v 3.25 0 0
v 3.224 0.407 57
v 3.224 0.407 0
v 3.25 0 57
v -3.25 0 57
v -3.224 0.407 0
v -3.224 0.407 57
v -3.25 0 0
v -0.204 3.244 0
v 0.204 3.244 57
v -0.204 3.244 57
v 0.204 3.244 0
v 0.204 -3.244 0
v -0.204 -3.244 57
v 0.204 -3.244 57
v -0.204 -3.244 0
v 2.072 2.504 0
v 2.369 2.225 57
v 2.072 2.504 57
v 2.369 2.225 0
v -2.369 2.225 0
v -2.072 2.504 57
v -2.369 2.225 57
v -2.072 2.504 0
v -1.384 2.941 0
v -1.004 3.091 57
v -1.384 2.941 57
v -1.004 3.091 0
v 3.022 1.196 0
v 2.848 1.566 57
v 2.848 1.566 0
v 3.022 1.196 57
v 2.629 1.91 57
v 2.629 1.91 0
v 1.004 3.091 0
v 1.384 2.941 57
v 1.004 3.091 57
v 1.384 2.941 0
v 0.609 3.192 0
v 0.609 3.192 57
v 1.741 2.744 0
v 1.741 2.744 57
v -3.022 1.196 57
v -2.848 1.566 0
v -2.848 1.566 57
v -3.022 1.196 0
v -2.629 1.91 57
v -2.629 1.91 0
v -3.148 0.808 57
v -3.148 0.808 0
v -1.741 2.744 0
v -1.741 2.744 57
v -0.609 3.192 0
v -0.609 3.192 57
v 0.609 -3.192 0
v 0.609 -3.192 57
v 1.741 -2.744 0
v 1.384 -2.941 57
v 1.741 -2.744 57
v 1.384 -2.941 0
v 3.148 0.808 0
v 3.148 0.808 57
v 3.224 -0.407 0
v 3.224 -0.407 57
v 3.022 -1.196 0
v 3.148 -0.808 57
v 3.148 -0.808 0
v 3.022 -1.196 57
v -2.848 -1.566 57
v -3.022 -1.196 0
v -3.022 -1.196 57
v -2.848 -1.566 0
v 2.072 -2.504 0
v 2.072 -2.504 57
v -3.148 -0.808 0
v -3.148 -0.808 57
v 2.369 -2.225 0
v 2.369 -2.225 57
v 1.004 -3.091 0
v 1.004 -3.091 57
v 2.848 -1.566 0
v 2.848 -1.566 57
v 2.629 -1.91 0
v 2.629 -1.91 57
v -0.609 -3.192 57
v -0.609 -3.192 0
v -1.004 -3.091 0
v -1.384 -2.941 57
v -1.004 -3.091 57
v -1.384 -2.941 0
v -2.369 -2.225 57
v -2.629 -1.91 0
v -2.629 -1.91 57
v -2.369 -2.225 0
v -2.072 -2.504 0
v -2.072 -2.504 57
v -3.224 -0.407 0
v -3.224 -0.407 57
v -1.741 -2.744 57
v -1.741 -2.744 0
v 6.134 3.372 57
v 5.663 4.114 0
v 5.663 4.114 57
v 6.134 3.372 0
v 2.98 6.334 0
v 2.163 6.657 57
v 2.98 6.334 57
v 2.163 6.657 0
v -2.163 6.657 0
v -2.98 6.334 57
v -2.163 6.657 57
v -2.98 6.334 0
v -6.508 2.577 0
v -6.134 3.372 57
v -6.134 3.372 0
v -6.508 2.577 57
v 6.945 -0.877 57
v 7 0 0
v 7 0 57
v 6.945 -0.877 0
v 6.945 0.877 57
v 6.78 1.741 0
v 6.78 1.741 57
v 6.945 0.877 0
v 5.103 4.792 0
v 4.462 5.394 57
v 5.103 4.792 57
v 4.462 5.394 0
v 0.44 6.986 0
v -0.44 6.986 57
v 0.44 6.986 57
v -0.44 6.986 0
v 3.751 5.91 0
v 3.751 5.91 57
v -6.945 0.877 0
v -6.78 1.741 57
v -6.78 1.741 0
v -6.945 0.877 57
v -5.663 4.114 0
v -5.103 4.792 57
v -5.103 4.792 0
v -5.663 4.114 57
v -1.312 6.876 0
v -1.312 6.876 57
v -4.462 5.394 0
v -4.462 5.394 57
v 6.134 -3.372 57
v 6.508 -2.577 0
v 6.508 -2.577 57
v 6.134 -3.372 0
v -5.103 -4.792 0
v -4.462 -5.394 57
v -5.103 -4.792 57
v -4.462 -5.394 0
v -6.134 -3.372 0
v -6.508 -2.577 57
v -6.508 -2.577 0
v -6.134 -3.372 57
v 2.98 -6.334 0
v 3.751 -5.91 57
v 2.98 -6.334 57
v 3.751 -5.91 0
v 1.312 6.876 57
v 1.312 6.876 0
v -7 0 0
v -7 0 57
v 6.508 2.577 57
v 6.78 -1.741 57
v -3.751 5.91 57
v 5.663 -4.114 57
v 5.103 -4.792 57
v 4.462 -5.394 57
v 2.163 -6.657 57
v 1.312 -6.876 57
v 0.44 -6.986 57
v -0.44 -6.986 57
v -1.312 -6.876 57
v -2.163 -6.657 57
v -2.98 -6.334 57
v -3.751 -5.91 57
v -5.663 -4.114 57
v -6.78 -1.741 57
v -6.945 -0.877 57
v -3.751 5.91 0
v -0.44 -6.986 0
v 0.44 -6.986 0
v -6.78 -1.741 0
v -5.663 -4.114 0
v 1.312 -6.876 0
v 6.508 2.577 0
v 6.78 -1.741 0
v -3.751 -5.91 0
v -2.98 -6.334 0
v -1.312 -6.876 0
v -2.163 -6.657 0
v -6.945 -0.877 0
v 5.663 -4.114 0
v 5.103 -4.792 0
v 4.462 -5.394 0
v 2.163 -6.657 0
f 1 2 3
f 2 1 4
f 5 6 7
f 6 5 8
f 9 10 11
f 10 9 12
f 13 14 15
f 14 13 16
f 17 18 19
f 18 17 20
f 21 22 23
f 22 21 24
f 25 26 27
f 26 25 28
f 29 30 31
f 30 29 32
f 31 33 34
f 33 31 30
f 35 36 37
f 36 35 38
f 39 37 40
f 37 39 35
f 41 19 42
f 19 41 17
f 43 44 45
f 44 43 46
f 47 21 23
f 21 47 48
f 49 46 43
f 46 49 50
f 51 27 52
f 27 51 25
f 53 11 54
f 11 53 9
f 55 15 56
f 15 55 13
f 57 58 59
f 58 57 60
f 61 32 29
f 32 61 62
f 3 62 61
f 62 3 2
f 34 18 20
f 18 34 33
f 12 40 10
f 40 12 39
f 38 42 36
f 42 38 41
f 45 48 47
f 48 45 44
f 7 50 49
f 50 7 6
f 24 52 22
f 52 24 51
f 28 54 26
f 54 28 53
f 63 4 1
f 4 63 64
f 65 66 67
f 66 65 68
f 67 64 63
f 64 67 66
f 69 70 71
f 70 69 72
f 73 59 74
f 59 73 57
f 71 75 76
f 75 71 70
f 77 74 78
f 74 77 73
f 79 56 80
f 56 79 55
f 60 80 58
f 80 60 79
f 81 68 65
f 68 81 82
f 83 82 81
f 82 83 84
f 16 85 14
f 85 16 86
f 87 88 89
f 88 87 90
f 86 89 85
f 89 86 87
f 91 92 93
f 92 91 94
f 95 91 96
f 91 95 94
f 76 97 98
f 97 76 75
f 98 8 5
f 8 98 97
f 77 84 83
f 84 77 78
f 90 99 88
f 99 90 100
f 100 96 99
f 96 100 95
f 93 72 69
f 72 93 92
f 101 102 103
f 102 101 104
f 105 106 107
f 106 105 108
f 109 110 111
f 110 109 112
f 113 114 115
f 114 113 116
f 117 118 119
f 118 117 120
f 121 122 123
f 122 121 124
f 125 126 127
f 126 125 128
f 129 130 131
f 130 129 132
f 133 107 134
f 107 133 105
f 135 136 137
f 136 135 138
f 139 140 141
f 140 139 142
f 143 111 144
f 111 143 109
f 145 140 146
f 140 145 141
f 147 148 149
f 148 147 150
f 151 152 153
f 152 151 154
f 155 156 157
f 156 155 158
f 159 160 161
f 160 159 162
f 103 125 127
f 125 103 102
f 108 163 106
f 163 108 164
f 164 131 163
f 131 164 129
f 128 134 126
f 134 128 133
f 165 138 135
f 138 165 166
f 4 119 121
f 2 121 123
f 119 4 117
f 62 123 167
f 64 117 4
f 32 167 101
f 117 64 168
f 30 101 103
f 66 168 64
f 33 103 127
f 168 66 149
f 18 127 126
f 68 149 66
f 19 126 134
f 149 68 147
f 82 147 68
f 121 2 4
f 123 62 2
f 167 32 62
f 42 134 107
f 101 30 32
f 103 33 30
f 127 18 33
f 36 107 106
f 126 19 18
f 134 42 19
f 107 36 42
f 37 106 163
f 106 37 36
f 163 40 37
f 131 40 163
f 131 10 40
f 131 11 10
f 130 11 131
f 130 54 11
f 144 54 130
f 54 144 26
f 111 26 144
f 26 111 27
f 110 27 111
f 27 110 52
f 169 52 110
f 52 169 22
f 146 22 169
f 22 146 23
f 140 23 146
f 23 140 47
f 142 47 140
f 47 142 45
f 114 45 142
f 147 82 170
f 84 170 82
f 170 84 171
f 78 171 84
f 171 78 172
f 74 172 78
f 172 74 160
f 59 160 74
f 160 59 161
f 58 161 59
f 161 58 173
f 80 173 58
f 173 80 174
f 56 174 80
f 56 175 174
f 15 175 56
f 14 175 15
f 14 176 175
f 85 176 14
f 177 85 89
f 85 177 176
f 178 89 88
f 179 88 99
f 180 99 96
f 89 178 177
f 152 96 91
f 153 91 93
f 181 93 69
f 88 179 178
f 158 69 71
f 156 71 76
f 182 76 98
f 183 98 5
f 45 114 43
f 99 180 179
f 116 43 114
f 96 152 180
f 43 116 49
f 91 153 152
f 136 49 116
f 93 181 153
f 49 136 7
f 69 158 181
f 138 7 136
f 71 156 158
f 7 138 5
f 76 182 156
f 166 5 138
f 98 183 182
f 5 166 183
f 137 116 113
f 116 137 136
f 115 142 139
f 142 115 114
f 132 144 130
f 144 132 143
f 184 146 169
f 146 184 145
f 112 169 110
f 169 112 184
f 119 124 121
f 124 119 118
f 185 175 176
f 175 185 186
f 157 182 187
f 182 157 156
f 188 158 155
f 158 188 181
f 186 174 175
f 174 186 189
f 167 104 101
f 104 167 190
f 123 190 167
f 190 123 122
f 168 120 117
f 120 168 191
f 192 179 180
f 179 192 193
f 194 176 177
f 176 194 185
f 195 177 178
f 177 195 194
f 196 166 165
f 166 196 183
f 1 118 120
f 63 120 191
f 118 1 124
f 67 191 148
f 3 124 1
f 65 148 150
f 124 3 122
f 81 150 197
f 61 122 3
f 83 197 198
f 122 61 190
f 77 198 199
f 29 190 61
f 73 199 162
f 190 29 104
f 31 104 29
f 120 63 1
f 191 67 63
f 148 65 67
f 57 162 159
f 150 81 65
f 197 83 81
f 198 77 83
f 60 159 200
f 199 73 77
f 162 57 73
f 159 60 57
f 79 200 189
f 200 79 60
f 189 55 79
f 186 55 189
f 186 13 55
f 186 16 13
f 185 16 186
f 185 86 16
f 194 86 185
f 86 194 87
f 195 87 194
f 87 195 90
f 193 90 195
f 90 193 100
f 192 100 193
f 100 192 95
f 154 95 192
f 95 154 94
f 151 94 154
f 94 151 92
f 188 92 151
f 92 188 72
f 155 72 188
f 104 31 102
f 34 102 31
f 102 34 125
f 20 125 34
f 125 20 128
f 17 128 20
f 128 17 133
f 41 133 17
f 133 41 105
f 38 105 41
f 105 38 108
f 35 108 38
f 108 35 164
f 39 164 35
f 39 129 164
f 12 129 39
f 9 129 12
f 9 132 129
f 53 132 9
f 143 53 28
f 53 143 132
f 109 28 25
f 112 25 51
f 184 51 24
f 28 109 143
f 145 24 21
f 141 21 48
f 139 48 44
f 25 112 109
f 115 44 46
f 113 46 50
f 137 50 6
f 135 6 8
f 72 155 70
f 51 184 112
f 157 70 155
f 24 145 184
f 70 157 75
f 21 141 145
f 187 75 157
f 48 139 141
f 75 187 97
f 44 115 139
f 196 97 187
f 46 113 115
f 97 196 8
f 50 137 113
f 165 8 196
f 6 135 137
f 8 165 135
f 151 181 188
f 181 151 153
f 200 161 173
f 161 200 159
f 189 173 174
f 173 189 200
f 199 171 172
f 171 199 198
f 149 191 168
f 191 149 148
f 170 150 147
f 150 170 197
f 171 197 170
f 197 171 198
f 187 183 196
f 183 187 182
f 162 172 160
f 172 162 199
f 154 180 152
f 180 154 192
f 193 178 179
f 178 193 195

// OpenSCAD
$fn = 50;


difference() {
	union() {
		cylinder(h = 57, r = 7.0000000000);
	}
	union() {
		translate(v = [0.0000000000, 0.0000000000, -100.0000000000]) {
			cylinder(h = 200, r = 3.2500000000);
		}
		cylinder(h = 57, r = 1.8000000000);
		cylinder(h = 57, r = 1.8000000000);
		cylinder(h = 57, r = 1.8000000000);
	}
}
